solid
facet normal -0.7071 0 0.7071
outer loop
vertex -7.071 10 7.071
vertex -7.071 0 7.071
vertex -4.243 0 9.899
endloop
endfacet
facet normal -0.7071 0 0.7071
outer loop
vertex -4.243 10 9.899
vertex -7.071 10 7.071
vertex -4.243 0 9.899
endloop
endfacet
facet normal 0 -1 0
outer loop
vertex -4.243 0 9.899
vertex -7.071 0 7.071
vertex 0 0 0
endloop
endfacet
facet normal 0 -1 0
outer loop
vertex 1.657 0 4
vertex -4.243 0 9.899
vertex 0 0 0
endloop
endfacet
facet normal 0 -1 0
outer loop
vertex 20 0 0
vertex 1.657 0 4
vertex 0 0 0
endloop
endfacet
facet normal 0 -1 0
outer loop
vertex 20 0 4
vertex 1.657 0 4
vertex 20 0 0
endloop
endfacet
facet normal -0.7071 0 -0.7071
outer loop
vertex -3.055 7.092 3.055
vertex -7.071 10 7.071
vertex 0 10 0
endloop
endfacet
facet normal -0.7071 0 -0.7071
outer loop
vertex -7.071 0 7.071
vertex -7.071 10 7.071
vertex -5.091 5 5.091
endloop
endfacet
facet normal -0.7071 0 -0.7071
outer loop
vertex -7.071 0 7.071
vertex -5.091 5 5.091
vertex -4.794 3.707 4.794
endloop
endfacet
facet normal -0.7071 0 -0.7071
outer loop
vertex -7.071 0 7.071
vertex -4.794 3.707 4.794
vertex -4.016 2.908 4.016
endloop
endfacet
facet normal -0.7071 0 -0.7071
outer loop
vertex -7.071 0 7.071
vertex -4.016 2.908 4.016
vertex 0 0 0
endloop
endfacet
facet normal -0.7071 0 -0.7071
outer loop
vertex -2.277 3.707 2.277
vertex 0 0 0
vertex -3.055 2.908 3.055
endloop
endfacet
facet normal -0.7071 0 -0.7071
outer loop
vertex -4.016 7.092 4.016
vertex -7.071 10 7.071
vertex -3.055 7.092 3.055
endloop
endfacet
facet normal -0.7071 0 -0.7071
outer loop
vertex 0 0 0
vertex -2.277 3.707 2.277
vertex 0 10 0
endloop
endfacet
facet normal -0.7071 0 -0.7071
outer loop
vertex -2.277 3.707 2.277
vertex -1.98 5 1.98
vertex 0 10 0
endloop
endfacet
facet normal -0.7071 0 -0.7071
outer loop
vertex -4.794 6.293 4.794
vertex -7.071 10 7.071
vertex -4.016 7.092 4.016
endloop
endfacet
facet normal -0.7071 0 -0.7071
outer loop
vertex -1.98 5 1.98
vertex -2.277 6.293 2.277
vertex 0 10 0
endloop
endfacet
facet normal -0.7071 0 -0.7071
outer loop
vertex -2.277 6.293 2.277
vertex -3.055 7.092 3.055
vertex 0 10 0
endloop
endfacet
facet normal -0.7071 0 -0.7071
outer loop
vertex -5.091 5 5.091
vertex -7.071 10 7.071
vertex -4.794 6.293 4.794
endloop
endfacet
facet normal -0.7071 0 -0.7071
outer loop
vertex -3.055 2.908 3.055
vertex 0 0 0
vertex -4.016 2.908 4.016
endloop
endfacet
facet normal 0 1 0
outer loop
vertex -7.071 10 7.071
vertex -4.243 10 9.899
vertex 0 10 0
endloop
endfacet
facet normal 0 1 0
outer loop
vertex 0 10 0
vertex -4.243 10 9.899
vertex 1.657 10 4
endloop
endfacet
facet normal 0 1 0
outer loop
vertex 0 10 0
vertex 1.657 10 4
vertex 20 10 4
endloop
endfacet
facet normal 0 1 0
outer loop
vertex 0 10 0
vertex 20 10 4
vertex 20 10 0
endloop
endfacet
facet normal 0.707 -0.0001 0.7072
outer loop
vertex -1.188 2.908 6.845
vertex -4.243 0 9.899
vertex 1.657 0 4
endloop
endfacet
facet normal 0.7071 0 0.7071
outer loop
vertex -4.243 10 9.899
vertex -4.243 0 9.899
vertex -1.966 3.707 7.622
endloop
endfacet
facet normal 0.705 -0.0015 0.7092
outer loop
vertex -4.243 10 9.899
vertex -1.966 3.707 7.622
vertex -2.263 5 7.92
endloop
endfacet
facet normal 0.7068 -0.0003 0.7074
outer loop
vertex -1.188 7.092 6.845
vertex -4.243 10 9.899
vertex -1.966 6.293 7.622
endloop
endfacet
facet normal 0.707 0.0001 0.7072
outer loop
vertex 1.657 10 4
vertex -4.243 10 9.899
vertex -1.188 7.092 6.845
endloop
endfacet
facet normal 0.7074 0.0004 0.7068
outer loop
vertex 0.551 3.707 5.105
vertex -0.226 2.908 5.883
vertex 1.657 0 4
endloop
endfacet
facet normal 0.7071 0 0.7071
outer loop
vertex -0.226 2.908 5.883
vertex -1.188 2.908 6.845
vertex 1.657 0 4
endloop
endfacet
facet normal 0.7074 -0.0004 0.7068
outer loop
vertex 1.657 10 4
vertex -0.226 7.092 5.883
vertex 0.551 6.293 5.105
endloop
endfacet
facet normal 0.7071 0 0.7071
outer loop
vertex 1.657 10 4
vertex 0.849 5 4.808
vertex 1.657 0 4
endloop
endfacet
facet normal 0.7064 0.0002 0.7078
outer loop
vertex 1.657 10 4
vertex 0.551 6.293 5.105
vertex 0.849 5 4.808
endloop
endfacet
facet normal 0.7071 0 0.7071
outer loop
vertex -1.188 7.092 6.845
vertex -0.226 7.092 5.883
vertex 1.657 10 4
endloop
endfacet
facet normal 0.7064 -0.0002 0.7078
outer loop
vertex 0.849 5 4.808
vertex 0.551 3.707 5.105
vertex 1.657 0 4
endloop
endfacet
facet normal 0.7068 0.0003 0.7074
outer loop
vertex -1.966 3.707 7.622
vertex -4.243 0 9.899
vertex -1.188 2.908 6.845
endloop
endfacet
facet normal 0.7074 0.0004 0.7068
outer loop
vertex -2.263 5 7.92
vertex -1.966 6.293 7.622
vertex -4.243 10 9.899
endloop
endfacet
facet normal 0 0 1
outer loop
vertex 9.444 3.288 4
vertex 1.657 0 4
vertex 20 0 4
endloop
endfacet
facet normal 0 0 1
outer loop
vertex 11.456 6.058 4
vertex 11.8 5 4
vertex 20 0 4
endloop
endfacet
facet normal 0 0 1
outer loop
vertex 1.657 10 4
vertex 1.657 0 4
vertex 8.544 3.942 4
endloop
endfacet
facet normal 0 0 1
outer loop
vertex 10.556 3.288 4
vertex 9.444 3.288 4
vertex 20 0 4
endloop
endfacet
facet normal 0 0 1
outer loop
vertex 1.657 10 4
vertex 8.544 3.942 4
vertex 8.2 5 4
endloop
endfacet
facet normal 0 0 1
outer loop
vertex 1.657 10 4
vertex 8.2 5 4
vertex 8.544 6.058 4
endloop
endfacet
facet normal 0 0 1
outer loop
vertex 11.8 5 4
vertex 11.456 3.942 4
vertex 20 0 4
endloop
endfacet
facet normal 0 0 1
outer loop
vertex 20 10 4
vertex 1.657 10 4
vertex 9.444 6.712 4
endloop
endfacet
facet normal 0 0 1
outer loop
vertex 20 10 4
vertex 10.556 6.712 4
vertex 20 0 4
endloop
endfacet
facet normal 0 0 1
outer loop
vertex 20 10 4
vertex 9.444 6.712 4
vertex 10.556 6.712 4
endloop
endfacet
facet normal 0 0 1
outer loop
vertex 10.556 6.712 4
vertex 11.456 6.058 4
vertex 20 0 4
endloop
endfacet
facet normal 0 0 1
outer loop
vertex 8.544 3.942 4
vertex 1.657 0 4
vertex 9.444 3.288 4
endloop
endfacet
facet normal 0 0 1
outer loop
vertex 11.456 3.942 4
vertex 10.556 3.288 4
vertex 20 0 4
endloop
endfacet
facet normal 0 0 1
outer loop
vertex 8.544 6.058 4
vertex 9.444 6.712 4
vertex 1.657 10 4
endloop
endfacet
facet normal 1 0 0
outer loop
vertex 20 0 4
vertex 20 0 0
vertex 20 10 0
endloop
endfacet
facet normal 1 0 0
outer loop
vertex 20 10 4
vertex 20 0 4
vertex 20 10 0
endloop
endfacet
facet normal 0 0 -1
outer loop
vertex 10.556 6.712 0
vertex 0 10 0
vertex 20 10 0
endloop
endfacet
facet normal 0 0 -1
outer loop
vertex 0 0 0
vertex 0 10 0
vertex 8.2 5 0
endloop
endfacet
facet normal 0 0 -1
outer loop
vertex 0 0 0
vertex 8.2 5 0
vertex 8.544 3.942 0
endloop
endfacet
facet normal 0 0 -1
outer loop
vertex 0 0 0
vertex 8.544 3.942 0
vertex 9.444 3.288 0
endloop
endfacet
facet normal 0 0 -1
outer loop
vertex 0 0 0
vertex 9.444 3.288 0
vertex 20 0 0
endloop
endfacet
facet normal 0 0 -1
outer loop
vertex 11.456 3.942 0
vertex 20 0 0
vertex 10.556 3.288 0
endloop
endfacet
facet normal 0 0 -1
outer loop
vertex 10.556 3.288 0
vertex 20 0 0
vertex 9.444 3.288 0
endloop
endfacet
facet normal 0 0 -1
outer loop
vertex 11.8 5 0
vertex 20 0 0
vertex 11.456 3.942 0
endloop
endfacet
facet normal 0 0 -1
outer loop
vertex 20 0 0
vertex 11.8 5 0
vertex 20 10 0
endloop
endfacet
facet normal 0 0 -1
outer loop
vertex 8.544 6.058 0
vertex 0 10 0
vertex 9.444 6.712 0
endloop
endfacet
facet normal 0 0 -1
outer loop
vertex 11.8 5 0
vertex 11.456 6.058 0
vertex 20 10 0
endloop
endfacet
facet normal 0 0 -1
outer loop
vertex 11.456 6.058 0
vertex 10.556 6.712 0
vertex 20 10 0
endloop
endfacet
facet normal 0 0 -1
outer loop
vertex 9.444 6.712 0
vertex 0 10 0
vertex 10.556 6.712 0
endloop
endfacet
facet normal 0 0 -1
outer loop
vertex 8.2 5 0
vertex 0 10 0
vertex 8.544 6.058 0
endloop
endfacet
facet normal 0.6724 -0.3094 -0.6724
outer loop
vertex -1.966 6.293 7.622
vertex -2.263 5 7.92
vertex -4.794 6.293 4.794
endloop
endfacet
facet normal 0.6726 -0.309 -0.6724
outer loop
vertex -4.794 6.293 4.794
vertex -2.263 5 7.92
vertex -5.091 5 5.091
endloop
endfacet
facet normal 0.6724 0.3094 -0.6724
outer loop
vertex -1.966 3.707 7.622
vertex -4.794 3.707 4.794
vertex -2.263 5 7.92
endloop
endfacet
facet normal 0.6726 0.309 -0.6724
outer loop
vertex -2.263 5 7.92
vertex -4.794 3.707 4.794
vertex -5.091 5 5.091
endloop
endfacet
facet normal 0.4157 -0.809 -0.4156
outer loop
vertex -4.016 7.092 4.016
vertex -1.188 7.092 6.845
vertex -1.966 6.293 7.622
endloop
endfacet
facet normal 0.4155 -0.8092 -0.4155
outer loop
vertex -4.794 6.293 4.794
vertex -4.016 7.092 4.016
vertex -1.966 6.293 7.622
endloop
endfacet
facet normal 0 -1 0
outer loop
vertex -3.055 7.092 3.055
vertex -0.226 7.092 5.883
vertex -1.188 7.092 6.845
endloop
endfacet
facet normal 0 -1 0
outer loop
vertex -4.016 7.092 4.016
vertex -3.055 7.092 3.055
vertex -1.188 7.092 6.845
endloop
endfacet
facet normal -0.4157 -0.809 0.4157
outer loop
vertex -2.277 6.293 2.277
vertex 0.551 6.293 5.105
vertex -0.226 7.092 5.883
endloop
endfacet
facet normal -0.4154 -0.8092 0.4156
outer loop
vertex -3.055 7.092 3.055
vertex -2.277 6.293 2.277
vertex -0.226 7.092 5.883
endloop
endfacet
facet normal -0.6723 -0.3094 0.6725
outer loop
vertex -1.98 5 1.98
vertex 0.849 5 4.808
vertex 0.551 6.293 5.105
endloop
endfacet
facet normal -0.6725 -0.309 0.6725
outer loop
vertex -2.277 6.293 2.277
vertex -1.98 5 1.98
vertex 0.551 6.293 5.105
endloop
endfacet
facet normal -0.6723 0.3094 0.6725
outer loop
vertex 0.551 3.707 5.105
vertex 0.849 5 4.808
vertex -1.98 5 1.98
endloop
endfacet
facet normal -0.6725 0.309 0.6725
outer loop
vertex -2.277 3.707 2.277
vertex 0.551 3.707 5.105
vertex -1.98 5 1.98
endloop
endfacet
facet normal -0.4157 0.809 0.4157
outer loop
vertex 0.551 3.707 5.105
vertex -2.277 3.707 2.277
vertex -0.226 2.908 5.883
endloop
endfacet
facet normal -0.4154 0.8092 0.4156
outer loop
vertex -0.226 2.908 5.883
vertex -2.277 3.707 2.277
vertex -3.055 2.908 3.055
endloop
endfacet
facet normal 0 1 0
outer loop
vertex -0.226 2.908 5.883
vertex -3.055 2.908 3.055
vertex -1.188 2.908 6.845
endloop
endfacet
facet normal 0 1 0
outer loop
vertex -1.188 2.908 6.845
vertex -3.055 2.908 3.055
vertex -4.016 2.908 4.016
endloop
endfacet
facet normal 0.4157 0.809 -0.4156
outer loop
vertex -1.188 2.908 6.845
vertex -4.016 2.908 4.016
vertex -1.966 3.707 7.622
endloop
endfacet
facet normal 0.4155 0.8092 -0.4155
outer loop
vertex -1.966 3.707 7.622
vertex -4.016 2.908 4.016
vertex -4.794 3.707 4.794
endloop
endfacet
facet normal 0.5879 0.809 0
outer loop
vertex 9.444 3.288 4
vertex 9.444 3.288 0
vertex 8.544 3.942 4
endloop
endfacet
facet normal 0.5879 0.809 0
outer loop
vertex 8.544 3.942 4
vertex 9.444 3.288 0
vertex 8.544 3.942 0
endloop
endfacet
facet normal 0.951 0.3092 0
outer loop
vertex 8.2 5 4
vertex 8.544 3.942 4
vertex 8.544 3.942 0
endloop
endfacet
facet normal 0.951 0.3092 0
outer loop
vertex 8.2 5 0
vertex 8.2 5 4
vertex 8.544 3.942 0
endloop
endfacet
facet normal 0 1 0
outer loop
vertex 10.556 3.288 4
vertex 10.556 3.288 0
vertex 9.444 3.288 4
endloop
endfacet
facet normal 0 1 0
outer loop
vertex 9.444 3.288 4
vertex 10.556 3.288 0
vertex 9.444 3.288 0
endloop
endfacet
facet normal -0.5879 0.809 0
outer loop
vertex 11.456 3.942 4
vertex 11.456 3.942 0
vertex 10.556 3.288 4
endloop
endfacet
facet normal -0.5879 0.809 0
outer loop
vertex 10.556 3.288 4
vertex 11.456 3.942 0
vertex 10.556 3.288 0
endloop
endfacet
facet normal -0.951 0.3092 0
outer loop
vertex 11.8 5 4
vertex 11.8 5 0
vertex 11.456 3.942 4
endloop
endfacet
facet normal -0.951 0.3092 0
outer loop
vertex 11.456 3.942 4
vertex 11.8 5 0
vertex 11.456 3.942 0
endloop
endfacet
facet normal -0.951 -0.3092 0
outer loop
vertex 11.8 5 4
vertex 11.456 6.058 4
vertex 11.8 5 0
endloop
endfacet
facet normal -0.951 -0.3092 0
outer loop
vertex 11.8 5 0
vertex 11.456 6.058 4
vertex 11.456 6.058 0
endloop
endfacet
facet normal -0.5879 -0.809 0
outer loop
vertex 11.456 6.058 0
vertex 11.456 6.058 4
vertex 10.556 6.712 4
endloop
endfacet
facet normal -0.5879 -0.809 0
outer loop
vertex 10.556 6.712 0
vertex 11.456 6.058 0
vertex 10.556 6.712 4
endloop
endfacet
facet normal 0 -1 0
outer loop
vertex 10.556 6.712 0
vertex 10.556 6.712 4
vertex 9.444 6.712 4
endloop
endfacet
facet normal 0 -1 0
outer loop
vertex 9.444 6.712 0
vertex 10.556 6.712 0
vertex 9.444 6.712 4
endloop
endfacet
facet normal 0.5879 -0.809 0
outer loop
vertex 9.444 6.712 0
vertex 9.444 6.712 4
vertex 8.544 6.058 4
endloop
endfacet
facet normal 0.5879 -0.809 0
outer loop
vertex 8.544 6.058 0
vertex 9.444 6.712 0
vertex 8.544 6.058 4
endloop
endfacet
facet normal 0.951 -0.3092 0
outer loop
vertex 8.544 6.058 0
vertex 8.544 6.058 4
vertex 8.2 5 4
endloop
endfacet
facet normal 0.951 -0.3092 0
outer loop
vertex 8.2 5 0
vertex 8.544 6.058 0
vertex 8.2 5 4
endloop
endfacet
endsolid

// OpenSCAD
// PRUSA iteration3
// Fan mount
// GNU GPL v3
// Josef Průša <iam@josefprusa.cz> and contributors
// http://www.reprap.org/wiki/Prusa_Mendel
// http://prusamendel.org

module fan_mount_base(){
 translate([0,0,0]) rotate([0,0,0]) cube([20,10, 4]);
 translate([0,0,0]) rotate([0,45,0]) translate([-10,0,0]) cube([10,10, 4]);
}

module fan_mount_holes(){
 translate([10,5,-1]) rotate([0,0,0]) cylinder(h=30, r=1.8, $fn=10);
 translate([0,5,0]) rotate([0,45,0]) translate([-5,0,-1]) cylinder(h=30, r=2.2, $fn=10);
}

// Final part
module fan_mount(){
 difference(){
  fan_mount_base();
  fan_mount_holes();
 }
}

fan_mount();
